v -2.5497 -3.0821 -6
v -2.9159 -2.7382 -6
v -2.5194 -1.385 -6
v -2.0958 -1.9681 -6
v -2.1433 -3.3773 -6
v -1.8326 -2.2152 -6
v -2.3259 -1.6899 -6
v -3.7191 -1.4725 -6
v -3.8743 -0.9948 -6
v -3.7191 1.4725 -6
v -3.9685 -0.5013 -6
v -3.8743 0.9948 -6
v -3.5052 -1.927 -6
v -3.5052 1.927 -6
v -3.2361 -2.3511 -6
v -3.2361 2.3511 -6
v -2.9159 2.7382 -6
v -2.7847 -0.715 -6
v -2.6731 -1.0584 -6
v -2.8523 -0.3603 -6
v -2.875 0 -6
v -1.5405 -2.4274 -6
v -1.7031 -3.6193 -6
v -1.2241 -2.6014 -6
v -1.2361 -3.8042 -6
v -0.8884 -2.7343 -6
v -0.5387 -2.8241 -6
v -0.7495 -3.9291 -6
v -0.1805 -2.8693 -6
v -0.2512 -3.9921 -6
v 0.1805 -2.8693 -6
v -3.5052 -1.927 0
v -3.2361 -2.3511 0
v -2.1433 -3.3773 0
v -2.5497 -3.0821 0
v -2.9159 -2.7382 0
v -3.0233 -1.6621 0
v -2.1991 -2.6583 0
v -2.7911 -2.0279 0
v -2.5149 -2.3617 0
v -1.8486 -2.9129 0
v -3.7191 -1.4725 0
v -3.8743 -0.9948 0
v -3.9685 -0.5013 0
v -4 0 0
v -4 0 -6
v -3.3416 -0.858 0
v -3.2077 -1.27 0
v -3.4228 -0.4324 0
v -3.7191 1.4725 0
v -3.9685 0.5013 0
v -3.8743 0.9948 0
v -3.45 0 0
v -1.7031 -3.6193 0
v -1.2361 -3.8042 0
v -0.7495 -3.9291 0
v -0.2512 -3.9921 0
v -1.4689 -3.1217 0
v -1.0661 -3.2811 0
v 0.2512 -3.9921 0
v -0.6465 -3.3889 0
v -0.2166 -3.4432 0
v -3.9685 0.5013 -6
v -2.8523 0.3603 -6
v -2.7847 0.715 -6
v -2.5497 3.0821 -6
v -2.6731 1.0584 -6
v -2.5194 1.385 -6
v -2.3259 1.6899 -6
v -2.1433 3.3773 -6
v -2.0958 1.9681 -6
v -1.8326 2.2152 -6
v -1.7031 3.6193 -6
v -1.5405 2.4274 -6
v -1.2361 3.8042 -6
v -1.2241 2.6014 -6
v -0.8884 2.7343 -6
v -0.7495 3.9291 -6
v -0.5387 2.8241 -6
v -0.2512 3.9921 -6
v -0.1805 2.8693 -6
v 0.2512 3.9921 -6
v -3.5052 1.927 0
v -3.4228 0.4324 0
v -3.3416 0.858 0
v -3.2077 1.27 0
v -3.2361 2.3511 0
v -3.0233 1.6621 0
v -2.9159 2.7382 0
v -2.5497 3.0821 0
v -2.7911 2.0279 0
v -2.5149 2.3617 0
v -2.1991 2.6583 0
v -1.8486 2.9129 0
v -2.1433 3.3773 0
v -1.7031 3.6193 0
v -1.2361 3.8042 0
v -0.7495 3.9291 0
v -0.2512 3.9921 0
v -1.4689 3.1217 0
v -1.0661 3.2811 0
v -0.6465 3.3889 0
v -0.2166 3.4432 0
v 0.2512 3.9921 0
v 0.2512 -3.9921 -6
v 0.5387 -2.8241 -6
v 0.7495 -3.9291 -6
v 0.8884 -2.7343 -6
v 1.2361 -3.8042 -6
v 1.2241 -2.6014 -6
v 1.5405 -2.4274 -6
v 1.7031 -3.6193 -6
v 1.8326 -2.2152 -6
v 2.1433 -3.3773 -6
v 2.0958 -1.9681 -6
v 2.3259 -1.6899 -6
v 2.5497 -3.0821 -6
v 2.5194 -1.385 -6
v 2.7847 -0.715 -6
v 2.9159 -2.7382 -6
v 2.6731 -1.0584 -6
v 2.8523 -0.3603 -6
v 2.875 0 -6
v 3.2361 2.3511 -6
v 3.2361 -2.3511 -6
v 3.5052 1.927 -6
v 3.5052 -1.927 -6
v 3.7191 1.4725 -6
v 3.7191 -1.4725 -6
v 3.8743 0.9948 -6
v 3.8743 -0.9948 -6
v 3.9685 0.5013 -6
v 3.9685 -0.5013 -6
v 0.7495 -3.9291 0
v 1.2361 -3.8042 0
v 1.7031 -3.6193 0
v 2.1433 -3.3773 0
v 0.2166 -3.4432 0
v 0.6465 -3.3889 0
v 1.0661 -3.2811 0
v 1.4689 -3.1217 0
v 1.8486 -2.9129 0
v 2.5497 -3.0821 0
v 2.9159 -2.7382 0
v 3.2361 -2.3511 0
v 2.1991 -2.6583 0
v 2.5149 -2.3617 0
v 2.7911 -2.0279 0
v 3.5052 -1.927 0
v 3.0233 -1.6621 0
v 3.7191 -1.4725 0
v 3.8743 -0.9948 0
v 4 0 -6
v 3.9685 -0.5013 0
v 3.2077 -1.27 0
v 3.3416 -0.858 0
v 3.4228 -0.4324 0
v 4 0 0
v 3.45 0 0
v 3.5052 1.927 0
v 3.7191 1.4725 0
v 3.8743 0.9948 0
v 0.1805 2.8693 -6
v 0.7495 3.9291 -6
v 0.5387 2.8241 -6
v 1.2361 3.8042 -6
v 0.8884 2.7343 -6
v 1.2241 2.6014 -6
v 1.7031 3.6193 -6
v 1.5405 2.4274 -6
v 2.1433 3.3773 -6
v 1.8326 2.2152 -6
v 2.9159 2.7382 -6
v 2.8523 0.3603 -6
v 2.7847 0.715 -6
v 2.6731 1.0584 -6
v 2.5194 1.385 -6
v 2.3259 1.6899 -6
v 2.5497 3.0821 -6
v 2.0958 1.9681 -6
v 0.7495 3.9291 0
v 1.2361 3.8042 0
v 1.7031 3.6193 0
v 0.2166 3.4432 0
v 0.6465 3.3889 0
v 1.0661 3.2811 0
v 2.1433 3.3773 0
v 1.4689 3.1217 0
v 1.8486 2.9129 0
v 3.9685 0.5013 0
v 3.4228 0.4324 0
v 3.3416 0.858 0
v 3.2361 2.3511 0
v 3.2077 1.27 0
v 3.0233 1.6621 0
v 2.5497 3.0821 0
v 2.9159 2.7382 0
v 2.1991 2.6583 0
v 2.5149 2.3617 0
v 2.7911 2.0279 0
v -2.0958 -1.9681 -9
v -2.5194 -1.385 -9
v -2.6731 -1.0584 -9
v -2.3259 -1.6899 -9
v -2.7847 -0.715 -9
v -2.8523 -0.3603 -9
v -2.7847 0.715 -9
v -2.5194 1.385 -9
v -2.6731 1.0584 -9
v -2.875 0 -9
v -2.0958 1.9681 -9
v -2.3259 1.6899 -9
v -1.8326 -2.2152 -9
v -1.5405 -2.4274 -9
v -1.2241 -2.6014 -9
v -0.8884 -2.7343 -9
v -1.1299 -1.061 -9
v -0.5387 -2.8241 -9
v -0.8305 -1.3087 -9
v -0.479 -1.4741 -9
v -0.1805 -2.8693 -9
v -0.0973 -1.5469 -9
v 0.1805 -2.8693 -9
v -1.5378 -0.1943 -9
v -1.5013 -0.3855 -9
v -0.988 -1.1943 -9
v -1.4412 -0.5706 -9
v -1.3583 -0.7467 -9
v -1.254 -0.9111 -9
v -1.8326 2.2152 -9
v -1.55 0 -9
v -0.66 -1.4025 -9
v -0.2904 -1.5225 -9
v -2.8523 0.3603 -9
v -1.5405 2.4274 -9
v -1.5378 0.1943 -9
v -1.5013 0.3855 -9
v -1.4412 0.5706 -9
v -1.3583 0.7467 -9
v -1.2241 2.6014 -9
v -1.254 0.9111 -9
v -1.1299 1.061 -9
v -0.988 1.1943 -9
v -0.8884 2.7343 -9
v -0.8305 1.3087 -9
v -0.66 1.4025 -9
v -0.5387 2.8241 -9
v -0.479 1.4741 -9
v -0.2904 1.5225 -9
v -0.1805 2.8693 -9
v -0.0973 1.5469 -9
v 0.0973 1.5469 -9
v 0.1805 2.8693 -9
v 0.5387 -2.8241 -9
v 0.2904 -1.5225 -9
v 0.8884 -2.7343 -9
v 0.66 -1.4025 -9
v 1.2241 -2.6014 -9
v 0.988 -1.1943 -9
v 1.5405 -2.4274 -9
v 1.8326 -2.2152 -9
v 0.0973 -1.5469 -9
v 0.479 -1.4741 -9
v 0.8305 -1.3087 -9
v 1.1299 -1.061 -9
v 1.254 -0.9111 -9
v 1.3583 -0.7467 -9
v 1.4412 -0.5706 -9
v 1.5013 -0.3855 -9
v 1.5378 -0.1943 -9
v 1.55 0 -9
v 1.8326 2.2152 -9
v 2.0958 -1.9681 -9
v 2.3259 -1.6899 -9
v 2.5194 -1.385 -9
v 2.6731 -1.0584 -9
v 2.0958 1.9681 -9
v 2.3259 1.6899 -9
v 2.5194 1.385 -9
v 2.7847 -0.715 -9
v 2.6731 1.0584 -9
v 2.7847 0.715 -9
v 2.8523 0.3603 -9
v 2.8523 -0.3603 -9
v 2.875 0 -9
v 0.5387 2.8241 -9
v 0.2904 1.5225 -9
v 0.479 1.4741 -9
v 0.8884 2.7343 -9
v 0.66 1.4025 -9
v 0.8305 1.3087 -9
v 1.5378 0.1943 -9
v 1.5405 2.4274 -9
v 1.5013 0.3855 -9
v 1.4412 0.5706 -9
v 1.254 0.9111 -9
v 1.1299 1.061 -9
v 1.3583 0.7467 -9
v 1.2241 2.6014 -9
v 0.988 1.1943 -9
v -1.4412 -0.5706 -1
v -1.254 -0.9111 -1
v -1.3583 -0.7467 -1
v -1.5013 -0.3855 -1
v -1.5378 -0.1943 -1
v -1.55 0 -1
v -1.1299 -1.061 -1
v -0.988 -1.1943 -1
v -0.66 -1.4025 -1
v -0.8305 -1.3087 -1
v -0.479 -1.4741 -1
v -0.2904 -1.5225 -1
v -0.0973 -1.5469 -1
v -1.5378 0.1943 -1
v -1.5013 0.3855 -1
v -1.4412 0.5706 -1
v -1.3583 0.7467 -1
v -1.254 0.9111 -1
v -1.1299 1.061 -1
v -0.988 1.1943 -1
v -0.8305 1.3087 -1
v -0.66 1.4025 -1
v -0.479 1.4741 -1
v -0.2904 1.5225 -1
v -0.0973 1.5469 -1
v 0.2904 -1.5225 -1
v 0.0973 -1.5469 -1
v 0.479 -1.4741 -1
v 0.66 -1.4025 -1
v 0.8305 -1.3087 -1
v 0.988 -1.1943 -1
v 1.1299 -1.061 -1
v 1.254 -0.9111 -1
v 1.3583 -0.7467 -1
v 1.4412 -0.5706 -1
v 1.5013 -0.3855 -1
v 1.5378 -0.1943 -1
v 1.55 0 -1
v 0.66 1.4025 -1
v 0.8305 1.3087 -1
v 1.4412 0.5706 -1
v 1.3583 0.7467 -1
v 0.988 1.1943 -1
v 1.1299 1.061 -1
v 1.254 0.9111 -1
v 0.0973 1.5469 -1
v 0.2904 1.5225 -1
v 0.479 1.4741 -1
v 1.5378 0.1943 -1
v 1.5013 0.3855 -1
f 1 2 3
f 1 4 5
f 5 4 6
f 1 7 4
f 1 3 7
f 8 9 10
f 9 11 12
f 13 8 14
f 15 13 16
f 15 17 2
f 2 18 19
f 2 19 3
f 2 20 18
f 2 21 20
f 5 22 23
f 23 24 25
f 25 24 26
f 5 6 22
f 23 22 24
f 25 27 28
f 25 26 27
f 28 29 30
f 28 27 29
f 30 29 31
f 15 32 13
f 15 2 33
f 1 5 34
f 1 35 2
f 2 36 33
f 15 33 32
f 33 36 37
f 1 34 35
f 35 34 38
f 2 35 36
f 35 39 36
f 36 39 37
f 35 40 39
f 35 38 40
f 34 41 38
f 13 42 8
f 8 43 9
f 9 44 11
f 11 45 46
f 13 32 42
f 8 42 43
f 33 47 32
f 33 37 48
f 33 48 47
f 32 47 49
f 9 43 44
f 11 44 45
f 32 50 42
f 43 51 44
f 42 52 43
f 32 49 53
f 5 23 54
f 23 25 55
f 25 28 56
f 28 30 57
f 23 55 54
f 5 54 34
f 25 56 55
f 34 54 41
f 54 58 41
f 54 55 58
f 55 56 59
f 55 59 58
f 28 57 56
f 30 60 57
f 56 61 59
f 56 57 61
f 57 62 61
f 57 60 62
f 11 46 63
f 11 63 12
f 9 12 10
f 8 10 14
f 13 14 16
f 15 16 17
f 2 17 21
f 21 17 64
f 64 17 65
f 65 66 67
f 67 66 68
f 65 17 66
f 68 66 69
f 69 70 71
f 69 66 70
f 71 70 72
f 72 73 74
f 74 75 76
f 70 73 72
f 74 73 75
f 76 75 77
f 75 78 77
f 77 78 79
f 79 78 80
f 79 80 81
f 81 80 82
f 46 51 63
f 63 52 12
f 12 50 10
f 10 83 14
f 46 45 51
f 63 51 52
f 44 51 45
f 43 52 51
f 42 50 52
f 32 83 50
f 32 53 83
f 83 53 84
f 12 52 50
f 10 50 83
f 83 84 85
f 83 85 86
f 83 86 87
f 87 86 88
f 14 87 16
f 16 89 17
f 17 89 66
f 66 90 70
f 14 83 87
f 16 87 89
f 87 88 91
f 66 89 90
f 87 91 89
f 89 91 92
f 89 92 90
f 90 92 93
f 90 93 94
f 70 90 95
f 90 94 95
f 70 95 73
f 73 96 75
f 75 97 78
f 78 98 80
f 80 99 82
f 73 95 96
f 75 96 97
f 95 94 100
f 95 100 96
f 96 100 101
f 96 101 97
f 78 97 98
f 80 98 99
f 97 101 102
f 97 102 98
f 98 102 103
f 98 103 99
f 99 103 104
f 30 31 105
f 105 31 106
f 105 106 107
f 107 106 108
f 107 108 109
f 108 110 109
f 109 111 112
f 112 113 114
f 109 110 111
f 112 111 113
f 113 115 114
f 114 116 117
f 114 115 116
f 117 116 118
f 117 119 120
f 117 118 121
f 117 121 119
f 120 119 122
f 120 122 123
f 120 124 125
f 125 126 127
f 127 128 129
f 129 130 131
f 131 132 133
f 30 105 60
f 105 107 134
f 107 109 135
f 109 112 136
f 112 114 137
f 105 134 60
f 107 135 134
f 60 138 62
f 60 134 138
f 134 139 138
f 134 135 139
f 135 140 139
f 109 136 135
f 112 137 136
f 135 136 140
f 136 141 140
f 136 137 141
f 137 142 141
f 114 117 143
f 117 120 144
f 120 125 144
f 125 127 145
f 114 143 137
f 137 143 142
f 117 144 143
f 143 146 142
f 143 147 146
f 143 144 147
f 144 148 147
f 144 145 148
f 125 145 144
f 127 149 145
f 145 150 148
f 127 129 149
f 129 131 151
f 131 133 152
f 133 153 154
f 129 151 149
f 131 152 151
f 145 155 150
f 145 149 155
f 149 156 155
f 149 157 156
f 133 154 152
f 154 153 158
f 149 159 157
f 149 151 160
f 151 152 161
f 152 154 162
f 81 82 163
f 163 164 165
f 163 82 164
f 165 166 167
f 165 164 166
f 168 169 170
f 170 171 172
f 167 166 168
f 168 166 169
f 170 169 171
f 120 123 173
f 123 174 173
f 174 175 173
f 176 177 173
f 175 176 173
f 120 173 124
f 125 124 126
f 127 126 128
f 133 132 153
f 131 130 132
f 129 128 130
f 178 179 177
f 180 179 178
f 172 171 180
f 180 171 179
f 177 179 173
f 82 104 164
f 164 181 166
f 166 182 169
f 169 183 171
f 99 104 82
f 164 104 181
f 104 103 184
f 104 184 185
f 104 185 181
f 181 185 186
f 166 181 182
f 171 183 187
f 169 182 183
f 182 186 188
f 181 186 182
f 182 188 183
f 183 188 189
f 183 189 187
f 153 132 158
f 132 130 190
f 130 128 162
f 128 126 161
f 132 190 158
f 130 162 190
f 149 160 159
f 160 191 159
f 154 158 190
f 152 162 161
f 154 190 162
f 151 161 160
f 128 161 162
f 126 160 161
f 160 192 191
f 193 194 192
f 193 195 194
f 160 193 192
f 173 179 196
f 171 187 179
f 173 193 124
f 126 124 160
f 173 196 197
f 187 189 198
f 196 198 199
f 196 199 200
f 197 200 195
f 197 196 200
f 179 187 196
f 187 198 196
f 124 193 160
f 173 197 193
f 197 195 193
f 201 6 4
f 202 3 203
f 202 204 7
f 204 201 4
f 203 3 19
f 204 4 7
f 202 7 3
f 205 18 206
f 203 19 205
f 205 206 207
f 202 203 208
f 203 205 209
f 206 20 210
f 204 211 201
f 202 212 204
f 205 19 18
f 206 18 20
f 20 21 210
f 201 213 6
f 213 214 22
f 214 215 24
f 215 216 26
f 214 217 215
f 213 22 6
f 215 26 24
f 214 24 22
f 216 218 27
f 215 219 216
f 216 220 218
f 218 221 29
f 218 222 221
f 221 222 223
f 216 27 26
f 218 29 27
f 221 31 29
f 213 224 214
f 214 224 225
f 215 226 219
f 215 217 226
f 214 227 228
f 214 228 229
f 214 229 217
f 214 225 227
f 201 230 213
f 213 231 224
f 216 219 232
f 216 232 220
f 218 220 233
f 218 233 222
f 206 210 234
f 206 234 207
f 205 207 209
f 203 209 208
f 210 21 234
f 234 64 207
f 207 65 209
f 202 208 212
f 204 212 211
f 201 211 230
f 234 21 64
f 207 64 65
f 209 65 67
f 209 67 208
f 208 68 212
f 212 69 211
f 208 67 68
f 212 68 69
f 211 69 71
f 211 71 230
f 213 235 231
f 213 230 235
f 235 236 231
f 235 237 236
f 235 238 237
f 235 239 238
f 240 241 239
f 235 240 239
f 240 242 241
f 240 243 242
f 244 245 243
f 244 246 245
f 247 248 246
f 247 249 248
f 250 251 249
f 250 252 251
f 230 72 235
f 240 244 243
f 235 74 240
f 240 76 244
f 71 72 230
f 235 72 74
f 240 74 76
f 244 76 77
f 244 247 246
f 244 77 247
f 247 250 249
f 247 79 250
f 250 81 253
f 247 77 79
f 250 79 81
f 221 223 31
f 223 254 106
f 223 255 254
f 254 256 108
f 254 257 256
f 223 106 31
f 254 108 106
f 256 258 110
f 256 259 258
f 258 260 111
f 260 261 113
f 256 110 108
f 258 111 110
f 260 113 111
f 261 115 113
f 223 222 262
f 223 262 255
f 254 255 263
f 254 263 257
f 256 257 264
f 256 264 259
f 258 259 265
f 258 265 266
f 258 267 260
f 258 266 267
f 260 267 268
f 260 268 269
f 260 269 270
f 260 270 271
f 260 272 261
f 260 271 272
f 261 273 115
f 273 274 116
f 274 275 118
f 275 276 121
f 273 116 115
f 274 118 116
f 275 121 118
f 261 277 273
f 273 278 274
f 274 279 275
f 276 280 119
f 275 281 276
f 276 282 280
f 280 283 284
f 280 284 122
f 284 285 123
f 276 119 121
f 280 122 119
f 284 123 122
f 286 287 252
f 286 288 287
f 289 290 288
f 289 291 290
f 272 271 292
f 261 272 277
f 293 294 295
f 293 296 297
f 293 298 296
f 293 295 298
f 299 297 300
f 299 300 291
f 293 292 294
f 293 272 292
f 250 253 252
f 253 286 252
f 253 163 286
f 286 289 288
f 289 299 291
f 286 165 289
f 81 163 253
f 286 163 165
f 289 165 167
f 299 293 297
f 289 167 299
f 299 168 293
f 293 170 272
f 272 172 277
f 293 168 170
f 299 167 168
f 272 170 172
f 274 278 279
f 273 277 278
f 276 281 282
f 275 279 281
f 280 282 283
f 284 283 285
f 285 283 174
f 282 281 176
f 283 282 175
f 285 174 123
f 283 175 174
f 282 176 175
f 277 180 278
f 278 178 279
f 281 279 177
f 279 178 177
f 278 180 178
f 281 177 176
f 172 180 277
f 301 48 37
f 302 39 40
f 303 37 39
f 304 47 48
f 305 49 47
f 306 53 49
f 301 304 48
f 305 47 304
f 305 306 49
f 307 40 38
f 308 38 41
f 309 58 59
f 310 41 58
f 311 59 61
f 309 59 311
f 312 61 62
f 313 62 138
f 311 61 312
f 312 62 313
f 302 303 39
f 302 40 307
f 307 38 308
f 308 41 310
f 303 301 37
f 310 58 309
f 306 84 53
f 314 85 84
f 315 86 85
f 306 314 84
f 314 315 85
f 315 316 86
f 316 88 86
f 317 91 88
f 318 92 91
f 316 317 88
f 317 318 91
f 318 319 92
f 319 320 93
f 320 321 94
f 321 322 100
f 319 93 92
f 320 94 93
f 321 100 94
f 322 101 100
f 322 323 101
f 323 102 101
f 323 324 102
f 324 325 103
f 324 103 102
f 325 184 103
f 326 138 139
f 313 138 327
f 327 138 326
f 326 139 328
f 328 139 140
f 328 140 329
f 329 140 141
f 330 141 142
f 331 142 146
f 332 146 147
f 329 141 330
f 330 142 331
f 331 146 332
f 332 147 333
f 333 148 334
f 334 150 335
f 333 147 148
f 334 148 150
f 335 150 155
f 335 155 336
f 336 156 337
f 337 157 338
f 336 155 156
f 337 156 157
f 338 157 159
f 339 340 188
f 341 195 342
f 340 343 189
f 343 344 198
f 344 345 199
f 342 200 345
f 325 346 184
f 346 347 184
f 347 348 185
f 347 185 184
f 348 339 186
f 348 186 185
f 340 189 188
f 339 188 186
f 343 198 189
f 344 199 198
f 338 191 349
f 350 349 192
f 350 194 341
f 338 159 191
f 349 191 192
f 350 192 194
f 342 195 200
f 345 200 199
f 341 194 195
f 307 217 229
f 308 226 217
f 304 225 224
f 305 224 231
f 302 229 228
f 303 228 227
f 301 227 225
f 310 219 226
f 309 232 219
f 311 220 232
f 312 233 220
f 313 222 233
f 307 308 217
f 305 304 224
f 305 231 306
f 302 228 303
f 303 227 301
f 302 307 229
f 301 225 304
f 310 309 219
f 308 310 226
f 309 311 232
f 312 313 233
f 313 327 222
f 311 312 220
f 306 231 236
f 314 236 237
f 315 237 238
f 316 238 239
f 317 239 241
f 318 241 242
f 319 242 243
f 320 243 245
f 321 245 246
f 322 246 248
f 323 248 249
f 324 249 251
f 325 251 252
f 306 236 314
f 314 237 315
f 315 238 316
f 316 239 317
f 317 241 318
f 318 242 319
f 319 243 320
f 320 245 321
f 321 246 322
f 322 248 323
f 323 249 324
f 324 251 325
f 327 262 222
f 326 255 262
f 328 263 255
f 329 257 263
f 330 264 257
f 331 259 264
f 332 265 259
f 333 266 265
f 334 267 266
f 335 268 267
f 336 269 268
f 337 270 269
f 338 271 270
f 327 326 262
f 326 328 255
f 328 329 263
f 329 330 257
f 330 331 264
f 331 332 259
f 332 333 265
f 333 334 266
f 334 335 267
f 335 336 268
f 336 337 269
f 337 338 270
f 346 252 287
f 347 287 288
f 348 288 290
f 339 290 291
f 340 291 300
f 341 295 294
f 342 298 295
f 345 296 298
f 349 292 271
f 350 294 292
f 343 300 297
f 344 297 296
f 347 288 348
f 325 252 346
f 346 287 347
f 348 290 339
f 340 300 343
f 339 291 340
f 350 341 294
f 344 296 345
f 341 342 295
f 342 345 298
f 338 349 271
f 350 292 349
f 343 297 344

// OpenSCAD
$fn = 50;

difference() {
	union() {
		translate(v = [0, 0, -6.0]) {
			cylinder(h = 6, r = 4.0);
		}
		#translate(v = [0, 0, -9.0]) {
			cylinder(h = 9, r = 2.875);
		}
	}
	union() {
		translate(v = [0, 0, 0]) {
			rotate(a = [0, 0, 0]) {
				difference() {
					union() {
						translate(v = [0, 0, -9.0]) {
							cylinder(h = 9, r = 1.25);
						}
						translate(v = [0, 0, -1.0]) {
							cylinder(h = 1.0, r1 = 1.55, r2 = 3.45);
						}
						translate(v = [0, 0, -9.0]) {
							cylinder(h = 9, r = 1.55);
						}
						translate(v = [0, 0, -9.0]) {
							cylinder(h = 9, r = 1.25);
						}
					}
					union();
				}
			}
		}
	}
}
